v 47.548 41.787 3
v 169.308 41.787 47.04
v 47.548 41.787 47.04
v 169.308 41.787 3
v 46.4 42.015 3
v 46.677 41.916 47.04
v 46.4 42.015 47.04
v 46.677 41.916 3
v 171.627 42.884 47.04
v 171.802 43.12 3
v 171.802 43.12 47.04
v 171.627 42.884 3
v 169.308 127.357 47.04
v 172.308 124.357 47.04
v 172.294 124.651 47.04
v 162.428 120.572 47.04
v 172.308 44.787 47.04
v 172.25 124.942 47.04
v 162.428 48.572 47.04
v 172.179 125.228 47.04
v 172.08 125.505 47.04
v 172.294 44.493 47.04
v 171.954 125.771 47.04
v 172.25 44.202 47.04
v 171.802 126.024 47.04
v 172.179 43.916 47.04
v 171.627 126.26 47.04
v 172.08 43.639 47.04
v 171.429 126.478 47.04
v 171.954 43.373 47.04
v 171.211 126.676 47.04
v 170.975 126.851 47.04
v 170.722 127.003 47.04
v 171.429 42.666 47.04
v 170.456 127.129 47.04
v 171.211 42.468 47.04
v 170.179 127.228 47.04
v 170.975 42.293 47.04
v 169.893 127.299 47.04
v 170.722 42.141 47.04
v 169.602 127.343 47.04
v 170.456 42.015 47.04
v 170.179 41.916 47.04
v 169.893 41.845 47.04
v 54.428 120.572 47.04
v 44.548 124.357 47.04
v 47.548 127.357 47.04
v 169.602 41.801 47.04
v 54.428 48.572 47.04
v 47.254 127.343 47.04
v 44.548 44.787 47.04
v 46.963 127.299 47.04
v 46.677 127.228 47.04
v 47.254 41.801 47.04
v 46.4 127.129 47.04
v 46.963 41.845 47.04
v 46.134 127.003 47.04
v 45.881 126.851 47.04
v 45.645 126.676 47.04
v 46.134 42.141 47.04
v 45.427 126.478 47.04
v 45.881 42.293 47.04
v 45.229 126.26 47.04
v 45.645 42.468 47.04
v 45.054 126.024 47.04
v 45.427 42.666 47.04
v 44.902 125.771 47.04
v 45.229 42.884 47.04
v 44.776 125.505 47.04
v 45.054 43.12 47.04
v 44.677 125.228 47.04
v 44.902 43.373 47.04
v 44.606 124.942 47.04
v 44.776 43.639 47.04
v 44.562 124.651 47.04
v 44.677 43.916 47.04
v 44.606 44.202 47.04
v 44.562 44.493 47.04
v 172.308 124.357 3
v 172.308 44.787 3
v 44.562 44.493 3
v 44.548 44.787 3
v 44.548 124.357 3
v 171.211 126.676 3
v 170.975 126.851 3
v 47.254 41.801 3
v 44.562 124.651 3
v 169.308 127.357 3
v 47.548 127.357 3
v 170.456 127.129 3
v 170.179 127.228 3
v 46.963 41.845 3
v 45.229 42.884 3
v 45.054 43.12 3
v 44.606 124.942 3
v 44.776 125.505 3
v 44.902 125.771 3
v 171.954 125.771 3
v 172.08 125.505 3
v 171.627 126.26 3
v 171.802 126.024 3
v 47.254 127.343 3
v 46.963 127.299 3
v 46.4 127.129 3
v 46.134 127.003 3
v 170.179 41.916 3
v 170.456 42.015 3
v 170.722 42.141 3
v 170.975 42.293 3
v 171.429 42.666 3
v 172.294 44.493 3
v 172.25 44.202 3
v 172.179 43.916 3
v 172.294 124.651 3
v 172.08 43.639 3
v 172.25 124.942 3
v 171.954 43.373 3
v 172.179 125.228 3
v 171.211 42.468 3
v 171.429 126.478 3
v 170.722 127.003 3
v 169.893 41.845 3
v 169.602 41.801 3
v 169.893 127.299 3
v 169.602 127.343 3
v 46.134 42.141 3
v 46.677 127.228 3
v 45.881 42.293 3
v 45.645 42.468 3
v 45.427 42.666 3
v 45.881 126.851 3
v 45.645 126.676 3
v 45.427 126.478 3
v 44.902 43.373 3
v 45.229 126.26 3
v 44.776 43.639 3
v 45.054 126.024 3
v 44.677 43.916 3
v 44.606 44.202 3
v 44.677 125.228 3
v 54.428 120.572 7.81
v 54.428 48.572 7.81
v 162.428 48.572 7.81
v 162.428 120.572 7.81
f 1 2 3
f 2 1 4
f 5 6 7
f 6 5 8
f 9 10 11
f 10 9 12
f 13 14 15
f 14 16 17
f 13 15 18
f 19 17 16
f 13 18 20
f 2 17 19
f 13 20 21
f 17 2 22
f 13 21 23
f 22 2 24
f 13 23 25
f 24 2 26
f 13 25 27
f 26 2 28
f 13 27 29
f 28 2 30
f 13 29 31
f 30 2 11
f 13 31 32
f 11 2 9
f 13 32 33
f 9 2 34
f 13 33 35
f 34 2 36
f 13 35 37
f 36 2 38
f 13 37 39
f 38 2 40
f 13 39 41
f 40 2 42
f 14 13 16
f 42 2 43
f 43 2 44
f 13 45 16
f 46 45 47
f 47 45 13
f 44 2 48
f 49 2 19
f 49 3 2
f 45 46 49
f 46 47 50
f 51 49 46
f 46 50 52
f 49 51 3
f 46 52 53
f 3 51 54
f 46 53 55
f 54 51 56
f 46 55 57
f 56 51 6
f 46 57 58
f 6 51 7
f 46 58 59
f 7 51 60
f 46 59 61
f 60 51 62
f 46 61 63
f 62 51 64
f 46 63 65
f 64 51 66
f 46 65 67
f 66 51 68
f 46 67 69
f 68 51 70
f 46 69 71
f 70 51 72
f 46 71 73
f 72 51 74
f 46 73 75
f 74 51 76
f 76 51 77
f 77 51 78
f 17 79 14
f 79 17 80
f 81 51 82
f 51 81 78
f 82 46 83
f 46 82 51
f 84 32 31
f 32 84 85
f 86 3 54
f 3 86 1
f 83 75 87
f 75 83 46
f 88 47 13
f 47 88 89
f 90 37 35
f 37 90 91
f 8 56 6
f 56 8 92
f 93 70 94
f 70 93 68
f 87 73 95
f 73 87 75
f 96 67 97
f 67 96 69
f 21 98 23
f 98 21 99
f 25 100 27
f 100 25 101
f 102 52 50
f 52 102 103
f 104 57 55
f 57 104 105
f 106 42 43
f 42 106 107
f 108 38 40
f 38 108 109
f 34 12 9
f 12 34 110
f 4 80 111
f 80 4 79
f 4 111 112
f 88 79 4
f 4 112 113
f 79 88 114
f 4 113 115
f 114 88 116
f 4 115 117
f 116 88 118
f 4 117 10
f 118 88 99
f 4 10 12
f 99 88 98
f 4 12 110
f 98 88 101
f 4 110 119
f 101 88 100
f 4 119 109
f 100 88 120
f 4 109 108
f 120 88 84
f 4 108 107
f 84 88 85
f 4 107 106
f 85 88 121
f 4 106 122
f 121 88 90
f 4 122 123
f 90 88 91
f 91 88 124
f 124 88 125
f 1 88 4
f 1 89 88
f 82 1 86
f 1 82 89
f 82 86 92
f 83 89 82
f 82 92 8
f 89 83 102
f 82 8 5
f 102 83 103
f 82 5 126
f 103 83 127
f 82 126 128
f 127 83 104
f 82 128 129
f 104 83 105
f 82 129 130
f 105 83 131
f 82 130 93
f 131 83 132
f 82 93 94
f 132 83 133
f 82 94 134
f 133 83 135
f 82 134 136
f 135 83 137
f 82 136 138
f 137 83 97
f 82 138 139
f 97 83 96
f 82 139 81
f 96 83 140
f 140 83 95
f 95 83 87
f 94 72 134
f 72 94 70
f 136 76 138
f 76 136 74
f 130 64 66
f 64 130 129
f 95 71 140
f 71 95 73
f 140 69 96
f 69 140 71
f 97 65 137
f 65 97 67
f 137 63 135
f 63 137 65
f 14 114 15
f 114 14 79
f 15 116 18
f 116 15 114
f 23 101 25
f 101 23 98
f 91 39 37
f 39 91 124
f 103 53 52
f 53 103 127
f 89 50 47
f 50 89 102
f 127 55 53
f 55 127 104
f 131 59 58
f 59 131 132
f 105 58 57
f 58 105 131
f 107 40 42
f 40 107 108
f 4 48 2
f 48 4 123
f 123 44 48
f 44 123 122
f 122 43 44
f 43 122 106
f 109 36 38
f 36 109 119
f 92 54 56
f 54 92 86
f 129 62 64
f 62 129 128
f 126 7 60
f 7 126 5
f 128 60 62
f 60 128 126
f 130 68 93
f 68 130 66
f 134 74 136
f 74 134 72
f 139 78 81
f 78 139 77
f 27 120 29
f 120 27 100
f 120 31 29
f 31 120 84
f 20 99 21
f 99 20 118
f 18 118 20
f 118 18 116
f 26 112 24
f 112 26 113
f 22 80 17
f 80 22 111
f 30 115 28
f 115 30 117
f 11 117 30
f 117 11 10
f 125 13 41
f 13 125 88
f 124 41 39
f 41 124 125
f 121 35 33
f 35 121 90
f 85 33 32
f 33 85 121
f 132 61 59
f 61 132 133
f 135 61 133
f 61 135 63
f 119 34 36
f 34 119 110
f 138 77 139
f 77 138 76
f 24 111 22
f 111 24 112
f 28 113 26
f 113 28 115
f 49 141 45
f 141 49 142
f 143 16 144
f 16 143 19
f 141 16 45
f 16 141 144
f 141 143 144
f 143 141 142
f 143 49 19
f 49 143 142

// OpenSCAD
// ─── Placement Jubilee ──────────────────────────────────────
// coordinates (JSON) : (44.55, 41.79, 3.00) mm
// Rotation utilisateur : 0°
// Labware dims : xDim=127.76, yDim=85.57

translate([44.548, 41.787, 3.000])
rotate([0, 0, 0.0])
{
    // ═══════════════════════════════════════════════════════════════════
    // 3-D model: Agilent 1 Well Reservoir 290 mL
    // Load name: agilent_1_reservoir_290ml
    // Generated by labware_to_scad.py
    // Well shape(s): rectangular
    // ═══════════════════════════════════════════════════════════════════

    // ── Render quality ─────────────────────────────────────────────────
    $fn = 64;   // circle/cylinder facets

    // ── Plate dimensions ────────────────────────────────────────────────
    plate_x = 127.76;
    plate_y = 85.57;
    plate_z = 44.04;

    // ── Corner rounding radius (set to 0 for sharp corners) ─────────────
    corner_r = 3.0;

    // ── Model ───────────────────────────────────────────────────────────
    difference() {

        // Outer plate body (rounded corners via hull)
        hull() {
            for (cx = [3.0, 124.76],
                 cy = [3.0, 82.57])
                translate([cx, cy, 0])
                    cylinder(r=3.0, h=44.04);
        }

        // ── Well cutouts ───────────────────────────────────────
        // Well A1
        translate([9.880000000000003, 6.784999999999997, 4.81])
            cube([108, 72, 39.23 + 1]);
    }

}
